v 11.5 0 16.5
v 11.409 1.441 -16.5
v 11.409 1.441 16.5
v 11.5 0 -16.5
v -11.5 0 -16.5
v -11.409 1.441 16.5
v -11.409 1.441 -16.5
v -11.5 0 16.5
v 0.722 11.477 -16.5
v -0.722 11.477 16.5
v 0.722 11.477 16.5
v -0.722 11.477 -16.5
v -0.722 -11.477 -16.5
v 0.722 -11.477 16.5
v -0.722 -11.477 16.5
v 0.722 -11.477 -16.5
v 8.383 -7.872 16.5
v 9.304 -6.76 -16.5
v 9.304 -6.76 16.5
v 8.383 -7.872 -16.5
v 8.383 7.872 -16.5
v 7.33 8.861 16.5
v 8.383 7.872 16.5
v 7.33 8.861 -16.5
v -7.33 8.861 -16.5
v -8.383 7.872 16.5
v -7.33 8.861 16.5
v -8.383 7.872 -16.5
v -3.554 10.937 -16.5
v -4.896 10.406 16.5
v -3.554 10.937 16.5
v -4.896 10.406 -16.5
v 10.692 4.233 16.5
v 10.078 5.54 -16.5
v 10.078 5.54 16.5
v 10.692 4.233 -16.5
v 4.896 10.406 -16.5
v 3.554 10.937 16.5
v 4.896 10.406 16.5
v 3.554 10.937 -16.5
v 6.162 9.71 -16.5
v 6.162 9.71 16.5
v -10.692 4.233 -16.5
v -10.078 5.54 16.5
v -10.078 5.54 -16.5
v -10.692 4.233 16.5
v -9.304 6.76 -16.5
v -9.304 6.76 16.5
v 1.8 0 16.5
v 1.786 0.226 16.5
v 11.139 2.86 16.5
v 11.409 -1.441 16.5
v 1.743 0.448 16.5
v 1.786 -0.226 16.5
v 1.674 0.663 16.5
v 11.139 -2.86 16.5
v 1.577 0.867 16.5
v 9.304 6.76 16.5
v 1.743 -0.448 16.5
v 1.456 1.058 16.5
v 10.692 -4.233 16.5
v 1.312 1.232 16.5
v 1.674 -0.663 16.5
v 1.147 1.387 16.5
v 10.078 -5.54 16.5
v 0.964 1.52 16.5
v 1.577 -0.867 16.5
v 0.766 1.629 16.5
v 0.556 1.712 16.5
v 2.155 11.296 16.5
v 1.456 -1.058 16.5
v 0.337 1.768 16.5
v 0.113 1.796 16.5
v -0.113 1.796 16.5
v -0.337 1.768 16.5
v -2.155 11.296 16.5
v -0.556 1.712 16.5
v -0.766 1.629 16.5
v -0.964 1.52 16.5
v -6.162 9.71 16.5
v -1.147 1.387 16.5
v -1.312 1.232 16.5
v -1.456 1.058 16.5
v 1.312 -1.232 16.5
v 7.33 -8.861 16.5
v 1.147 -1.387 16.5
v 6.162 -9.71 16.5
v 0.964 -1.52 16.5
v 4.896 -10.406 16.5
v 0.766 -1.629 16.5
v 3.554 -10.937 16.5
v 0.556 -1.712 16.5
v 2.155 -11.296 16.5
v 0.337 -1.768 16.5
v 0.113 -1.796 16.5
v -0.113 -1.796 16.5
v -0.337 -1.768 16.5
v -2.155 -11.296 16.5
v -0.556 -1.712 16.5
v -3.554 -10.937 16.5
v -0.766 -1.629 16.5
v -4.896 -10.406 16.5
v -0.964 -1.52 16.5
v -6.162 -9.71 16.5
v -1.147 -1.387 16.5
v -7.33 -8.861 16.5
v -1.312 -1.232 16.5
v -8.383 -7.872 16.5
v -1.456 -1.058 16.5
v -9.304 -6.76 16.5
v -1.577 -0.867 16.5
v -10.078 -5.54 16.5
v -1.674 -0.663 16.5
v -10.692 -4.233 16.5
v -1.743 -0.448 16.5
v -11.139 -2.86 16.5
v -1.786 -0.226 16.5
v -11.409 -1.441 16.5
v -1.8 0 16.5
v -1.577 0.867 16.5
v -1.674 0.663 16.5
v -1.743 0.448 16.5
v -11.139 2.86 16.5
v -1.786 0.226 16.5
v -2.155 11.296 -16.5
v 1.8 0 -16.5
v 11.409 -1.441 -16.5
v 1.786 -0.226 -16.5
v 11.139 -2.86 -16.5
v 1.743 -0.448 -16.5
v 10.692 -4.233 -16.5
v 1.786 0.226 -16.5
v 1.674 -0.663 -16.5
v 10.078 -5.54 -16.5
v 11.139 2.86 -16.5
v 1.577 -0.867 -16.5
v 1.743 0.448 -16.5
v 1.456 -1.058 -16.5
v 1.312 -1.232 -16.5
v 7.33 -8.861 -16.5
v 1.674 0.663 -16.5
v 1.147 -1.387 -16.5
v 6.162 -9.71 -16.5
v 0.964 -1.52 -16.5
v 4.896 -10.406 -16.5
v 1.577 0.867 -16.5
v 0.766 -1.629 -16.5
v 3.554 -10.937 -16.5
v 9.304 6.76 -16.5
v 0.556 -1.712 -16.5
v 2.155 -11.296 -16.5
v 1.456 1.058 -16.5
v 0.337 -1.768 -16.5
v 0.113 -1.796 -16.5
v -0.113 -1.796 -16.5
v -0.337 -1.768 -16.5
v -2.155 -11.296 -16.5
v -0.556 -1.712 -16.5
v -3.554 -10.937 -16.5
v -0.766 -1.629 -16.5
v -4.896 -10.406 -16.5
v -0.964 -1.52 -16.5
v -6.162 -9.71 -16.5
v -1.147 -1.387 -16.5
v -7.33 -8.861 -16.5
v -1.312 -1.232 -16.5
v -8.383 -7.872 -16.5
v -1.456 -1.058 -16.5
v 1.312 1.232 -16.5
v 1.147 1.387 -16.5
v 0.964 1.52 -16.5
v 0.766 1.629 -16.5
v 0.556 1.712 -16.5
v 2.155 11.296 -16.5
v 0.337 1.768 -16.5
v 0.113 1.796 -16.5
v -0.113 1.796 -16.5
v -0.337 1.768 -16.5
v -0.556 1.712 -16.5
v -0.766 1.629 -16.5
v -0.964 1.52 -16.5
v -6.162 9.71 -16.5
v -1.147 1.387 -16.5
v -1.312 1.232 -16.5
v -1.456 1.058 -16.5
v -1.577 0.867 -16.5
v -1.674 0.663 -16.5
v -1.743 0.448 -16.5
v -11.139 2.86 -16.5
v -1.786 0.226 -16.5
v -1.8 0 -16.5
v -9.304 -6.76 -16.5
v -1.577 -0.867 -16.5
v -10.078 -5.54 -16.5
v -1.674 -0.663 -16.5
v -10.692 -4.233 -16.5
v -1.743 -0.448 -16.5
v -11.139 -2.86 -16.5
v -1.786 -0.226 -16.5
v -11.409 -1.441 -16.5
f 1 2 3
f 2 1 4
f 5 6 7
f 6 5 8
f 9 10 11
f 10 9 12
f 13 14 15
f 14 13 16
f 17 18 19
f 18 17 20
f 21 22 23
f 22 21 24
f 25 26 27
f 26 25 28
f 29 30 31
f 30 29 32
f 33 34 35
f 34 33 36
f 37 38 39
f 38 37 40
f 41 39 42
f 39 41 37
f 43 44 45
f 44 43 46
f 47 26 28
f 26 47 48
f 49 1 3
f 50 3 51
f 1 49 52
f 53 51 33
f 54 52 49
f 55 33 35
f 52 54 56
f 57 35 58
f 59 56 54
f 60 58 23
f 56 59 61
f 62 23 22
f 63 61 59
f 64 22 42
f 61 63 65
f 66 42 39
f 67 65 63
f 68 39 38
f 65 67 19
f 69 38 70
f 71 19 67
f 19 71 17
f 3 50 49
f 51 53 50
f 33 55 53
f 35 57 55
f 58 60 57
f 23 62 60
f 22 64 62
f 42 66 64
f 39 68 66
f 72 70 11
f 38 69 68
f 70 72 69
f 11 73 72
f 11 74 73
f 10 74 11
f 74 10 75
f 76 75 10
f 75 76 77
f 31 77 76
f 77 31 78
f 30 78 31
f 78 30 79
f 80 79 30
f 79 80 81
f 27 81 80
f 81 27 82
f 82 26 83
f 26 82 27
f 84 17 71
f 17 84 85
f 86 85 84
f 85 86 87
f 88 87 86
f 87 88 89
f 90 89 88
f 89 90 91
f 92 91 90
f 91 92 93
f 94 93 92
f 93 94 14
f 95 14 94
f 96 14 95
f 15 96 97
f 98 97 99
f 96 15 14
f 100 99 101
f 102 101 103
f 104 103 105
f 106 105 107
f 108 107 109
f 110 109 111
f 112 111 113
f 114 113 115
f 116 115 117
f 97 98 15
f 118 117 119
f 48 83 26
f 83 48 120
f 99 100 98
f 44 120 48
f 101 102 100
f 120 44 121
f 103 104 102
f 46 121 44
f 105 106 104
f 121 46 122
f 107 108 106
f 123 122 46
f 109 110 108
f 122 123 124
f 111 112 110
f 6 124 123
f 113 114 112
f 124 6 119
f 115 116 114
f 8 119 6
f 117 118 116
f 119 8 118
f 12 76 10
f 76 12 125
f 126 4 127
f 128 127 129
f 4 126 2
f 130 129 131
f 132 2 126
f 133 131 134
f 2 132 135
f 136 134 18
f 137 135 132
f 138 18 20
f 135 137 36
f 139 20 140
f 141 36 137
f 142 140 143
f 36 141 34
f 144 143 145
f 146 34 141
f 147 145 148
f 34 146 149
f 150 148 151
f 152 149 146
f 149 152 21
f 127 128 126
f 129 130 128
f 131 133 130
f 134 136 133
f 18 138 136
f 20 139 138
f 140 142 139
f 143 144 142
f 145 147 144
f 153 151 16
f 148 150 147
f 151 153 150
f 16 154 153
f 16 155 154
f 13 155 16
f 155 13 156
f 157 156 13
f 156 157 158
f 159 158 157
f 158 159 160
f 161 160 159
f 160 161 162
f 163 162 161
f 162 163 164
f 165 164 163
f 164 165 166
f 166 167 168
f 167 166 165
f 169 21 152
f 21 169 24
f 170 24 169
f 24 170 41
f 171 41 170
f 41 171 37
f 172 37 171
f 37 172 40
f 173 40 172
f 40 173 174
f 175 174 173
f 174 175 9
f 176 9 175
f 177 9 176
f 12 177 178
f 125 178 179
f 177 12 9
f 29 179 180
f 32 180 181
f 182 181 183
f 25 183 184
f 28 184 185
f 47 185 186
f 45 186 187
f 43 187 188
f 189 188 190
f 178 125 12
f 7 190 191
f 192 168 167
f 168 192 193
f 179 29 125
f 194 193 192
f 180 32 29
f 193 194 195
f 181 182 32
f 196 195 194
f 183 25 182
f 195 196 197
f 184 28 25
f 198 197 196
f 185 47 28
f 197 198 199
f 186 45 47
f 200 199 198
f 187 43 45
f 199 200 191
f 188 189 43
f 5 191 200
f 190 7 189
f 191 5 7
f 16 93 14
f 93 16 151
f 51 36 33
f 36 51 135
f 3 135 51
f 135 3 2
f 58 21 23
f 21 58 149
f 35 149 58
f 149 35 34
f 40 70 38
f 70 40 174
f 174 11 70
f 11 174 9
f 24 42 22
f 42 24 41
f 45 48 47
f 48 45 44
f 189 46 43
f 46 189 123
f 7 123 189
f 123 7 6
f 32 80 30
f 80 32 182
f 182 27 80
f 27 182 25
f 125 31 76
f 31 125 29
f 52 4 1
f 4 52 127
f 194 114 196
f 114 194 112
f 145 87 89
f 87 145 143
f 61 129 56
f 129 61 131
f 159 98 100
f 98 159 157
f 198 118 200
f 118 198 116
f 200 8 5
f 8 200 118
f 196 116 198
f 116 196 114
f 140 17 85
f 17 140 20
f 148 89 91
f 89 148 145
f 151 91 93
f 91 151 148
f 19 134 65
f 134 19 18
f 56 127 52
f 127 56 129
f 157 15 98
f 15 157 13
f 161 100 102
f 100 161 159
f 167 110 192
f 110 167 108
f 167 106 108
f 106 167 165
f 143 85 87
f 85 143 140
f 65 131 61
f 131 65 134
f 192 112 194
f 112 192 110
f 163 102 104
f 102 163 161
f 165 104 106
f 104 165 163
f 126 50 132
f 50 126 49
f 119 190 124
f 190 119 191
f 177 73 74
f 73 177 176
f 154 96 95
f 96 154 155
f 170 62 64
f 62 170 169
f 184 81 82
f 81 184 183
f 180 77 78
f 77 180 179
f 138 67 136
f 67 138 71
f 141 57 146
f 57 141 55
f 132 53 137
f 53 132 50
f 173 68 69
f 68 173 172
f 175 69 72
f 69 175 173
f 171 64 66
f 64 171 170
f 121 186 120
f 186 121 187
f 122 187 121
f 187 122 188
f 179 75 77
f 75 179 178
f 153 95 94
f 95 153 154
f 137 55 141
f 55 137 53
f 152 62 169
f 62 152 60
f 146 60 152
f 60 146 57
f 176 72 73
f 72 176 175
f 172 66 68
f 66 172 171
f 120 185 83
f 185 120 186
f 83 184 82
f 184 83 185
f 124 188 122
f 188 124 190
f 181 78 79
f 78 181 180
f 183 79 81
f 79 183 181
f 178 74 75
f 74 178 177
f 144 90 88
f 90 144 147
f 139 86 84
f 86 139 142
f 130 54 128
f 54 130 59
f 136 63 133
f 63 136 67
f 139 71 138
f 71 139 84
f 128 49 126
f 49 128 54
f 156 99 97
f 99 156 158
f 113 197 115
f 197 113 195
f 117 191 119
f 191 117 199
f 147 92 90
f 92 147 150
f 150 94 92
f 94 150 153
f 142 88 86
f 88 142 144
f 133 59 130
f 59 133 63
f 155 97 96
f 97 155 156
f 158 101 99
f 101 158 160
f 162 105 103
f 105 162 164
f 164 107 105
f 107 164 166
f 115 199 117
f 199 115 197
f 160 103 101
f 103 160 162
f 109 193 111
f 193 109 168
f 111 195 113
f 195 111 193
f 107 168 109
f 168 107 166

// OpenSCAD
$fn = 50;


difference() {
	union() {
		translate(v = [0, 0, -16.5000000000]) {
			cylinder(h = 33, r = 11.5000000000);
		}
	}
	union() {
		translate(v = [0, 0, -100.0000000000]) {
			cylinder(h = 200, r = 1.8000000000);
		}
	}
}
